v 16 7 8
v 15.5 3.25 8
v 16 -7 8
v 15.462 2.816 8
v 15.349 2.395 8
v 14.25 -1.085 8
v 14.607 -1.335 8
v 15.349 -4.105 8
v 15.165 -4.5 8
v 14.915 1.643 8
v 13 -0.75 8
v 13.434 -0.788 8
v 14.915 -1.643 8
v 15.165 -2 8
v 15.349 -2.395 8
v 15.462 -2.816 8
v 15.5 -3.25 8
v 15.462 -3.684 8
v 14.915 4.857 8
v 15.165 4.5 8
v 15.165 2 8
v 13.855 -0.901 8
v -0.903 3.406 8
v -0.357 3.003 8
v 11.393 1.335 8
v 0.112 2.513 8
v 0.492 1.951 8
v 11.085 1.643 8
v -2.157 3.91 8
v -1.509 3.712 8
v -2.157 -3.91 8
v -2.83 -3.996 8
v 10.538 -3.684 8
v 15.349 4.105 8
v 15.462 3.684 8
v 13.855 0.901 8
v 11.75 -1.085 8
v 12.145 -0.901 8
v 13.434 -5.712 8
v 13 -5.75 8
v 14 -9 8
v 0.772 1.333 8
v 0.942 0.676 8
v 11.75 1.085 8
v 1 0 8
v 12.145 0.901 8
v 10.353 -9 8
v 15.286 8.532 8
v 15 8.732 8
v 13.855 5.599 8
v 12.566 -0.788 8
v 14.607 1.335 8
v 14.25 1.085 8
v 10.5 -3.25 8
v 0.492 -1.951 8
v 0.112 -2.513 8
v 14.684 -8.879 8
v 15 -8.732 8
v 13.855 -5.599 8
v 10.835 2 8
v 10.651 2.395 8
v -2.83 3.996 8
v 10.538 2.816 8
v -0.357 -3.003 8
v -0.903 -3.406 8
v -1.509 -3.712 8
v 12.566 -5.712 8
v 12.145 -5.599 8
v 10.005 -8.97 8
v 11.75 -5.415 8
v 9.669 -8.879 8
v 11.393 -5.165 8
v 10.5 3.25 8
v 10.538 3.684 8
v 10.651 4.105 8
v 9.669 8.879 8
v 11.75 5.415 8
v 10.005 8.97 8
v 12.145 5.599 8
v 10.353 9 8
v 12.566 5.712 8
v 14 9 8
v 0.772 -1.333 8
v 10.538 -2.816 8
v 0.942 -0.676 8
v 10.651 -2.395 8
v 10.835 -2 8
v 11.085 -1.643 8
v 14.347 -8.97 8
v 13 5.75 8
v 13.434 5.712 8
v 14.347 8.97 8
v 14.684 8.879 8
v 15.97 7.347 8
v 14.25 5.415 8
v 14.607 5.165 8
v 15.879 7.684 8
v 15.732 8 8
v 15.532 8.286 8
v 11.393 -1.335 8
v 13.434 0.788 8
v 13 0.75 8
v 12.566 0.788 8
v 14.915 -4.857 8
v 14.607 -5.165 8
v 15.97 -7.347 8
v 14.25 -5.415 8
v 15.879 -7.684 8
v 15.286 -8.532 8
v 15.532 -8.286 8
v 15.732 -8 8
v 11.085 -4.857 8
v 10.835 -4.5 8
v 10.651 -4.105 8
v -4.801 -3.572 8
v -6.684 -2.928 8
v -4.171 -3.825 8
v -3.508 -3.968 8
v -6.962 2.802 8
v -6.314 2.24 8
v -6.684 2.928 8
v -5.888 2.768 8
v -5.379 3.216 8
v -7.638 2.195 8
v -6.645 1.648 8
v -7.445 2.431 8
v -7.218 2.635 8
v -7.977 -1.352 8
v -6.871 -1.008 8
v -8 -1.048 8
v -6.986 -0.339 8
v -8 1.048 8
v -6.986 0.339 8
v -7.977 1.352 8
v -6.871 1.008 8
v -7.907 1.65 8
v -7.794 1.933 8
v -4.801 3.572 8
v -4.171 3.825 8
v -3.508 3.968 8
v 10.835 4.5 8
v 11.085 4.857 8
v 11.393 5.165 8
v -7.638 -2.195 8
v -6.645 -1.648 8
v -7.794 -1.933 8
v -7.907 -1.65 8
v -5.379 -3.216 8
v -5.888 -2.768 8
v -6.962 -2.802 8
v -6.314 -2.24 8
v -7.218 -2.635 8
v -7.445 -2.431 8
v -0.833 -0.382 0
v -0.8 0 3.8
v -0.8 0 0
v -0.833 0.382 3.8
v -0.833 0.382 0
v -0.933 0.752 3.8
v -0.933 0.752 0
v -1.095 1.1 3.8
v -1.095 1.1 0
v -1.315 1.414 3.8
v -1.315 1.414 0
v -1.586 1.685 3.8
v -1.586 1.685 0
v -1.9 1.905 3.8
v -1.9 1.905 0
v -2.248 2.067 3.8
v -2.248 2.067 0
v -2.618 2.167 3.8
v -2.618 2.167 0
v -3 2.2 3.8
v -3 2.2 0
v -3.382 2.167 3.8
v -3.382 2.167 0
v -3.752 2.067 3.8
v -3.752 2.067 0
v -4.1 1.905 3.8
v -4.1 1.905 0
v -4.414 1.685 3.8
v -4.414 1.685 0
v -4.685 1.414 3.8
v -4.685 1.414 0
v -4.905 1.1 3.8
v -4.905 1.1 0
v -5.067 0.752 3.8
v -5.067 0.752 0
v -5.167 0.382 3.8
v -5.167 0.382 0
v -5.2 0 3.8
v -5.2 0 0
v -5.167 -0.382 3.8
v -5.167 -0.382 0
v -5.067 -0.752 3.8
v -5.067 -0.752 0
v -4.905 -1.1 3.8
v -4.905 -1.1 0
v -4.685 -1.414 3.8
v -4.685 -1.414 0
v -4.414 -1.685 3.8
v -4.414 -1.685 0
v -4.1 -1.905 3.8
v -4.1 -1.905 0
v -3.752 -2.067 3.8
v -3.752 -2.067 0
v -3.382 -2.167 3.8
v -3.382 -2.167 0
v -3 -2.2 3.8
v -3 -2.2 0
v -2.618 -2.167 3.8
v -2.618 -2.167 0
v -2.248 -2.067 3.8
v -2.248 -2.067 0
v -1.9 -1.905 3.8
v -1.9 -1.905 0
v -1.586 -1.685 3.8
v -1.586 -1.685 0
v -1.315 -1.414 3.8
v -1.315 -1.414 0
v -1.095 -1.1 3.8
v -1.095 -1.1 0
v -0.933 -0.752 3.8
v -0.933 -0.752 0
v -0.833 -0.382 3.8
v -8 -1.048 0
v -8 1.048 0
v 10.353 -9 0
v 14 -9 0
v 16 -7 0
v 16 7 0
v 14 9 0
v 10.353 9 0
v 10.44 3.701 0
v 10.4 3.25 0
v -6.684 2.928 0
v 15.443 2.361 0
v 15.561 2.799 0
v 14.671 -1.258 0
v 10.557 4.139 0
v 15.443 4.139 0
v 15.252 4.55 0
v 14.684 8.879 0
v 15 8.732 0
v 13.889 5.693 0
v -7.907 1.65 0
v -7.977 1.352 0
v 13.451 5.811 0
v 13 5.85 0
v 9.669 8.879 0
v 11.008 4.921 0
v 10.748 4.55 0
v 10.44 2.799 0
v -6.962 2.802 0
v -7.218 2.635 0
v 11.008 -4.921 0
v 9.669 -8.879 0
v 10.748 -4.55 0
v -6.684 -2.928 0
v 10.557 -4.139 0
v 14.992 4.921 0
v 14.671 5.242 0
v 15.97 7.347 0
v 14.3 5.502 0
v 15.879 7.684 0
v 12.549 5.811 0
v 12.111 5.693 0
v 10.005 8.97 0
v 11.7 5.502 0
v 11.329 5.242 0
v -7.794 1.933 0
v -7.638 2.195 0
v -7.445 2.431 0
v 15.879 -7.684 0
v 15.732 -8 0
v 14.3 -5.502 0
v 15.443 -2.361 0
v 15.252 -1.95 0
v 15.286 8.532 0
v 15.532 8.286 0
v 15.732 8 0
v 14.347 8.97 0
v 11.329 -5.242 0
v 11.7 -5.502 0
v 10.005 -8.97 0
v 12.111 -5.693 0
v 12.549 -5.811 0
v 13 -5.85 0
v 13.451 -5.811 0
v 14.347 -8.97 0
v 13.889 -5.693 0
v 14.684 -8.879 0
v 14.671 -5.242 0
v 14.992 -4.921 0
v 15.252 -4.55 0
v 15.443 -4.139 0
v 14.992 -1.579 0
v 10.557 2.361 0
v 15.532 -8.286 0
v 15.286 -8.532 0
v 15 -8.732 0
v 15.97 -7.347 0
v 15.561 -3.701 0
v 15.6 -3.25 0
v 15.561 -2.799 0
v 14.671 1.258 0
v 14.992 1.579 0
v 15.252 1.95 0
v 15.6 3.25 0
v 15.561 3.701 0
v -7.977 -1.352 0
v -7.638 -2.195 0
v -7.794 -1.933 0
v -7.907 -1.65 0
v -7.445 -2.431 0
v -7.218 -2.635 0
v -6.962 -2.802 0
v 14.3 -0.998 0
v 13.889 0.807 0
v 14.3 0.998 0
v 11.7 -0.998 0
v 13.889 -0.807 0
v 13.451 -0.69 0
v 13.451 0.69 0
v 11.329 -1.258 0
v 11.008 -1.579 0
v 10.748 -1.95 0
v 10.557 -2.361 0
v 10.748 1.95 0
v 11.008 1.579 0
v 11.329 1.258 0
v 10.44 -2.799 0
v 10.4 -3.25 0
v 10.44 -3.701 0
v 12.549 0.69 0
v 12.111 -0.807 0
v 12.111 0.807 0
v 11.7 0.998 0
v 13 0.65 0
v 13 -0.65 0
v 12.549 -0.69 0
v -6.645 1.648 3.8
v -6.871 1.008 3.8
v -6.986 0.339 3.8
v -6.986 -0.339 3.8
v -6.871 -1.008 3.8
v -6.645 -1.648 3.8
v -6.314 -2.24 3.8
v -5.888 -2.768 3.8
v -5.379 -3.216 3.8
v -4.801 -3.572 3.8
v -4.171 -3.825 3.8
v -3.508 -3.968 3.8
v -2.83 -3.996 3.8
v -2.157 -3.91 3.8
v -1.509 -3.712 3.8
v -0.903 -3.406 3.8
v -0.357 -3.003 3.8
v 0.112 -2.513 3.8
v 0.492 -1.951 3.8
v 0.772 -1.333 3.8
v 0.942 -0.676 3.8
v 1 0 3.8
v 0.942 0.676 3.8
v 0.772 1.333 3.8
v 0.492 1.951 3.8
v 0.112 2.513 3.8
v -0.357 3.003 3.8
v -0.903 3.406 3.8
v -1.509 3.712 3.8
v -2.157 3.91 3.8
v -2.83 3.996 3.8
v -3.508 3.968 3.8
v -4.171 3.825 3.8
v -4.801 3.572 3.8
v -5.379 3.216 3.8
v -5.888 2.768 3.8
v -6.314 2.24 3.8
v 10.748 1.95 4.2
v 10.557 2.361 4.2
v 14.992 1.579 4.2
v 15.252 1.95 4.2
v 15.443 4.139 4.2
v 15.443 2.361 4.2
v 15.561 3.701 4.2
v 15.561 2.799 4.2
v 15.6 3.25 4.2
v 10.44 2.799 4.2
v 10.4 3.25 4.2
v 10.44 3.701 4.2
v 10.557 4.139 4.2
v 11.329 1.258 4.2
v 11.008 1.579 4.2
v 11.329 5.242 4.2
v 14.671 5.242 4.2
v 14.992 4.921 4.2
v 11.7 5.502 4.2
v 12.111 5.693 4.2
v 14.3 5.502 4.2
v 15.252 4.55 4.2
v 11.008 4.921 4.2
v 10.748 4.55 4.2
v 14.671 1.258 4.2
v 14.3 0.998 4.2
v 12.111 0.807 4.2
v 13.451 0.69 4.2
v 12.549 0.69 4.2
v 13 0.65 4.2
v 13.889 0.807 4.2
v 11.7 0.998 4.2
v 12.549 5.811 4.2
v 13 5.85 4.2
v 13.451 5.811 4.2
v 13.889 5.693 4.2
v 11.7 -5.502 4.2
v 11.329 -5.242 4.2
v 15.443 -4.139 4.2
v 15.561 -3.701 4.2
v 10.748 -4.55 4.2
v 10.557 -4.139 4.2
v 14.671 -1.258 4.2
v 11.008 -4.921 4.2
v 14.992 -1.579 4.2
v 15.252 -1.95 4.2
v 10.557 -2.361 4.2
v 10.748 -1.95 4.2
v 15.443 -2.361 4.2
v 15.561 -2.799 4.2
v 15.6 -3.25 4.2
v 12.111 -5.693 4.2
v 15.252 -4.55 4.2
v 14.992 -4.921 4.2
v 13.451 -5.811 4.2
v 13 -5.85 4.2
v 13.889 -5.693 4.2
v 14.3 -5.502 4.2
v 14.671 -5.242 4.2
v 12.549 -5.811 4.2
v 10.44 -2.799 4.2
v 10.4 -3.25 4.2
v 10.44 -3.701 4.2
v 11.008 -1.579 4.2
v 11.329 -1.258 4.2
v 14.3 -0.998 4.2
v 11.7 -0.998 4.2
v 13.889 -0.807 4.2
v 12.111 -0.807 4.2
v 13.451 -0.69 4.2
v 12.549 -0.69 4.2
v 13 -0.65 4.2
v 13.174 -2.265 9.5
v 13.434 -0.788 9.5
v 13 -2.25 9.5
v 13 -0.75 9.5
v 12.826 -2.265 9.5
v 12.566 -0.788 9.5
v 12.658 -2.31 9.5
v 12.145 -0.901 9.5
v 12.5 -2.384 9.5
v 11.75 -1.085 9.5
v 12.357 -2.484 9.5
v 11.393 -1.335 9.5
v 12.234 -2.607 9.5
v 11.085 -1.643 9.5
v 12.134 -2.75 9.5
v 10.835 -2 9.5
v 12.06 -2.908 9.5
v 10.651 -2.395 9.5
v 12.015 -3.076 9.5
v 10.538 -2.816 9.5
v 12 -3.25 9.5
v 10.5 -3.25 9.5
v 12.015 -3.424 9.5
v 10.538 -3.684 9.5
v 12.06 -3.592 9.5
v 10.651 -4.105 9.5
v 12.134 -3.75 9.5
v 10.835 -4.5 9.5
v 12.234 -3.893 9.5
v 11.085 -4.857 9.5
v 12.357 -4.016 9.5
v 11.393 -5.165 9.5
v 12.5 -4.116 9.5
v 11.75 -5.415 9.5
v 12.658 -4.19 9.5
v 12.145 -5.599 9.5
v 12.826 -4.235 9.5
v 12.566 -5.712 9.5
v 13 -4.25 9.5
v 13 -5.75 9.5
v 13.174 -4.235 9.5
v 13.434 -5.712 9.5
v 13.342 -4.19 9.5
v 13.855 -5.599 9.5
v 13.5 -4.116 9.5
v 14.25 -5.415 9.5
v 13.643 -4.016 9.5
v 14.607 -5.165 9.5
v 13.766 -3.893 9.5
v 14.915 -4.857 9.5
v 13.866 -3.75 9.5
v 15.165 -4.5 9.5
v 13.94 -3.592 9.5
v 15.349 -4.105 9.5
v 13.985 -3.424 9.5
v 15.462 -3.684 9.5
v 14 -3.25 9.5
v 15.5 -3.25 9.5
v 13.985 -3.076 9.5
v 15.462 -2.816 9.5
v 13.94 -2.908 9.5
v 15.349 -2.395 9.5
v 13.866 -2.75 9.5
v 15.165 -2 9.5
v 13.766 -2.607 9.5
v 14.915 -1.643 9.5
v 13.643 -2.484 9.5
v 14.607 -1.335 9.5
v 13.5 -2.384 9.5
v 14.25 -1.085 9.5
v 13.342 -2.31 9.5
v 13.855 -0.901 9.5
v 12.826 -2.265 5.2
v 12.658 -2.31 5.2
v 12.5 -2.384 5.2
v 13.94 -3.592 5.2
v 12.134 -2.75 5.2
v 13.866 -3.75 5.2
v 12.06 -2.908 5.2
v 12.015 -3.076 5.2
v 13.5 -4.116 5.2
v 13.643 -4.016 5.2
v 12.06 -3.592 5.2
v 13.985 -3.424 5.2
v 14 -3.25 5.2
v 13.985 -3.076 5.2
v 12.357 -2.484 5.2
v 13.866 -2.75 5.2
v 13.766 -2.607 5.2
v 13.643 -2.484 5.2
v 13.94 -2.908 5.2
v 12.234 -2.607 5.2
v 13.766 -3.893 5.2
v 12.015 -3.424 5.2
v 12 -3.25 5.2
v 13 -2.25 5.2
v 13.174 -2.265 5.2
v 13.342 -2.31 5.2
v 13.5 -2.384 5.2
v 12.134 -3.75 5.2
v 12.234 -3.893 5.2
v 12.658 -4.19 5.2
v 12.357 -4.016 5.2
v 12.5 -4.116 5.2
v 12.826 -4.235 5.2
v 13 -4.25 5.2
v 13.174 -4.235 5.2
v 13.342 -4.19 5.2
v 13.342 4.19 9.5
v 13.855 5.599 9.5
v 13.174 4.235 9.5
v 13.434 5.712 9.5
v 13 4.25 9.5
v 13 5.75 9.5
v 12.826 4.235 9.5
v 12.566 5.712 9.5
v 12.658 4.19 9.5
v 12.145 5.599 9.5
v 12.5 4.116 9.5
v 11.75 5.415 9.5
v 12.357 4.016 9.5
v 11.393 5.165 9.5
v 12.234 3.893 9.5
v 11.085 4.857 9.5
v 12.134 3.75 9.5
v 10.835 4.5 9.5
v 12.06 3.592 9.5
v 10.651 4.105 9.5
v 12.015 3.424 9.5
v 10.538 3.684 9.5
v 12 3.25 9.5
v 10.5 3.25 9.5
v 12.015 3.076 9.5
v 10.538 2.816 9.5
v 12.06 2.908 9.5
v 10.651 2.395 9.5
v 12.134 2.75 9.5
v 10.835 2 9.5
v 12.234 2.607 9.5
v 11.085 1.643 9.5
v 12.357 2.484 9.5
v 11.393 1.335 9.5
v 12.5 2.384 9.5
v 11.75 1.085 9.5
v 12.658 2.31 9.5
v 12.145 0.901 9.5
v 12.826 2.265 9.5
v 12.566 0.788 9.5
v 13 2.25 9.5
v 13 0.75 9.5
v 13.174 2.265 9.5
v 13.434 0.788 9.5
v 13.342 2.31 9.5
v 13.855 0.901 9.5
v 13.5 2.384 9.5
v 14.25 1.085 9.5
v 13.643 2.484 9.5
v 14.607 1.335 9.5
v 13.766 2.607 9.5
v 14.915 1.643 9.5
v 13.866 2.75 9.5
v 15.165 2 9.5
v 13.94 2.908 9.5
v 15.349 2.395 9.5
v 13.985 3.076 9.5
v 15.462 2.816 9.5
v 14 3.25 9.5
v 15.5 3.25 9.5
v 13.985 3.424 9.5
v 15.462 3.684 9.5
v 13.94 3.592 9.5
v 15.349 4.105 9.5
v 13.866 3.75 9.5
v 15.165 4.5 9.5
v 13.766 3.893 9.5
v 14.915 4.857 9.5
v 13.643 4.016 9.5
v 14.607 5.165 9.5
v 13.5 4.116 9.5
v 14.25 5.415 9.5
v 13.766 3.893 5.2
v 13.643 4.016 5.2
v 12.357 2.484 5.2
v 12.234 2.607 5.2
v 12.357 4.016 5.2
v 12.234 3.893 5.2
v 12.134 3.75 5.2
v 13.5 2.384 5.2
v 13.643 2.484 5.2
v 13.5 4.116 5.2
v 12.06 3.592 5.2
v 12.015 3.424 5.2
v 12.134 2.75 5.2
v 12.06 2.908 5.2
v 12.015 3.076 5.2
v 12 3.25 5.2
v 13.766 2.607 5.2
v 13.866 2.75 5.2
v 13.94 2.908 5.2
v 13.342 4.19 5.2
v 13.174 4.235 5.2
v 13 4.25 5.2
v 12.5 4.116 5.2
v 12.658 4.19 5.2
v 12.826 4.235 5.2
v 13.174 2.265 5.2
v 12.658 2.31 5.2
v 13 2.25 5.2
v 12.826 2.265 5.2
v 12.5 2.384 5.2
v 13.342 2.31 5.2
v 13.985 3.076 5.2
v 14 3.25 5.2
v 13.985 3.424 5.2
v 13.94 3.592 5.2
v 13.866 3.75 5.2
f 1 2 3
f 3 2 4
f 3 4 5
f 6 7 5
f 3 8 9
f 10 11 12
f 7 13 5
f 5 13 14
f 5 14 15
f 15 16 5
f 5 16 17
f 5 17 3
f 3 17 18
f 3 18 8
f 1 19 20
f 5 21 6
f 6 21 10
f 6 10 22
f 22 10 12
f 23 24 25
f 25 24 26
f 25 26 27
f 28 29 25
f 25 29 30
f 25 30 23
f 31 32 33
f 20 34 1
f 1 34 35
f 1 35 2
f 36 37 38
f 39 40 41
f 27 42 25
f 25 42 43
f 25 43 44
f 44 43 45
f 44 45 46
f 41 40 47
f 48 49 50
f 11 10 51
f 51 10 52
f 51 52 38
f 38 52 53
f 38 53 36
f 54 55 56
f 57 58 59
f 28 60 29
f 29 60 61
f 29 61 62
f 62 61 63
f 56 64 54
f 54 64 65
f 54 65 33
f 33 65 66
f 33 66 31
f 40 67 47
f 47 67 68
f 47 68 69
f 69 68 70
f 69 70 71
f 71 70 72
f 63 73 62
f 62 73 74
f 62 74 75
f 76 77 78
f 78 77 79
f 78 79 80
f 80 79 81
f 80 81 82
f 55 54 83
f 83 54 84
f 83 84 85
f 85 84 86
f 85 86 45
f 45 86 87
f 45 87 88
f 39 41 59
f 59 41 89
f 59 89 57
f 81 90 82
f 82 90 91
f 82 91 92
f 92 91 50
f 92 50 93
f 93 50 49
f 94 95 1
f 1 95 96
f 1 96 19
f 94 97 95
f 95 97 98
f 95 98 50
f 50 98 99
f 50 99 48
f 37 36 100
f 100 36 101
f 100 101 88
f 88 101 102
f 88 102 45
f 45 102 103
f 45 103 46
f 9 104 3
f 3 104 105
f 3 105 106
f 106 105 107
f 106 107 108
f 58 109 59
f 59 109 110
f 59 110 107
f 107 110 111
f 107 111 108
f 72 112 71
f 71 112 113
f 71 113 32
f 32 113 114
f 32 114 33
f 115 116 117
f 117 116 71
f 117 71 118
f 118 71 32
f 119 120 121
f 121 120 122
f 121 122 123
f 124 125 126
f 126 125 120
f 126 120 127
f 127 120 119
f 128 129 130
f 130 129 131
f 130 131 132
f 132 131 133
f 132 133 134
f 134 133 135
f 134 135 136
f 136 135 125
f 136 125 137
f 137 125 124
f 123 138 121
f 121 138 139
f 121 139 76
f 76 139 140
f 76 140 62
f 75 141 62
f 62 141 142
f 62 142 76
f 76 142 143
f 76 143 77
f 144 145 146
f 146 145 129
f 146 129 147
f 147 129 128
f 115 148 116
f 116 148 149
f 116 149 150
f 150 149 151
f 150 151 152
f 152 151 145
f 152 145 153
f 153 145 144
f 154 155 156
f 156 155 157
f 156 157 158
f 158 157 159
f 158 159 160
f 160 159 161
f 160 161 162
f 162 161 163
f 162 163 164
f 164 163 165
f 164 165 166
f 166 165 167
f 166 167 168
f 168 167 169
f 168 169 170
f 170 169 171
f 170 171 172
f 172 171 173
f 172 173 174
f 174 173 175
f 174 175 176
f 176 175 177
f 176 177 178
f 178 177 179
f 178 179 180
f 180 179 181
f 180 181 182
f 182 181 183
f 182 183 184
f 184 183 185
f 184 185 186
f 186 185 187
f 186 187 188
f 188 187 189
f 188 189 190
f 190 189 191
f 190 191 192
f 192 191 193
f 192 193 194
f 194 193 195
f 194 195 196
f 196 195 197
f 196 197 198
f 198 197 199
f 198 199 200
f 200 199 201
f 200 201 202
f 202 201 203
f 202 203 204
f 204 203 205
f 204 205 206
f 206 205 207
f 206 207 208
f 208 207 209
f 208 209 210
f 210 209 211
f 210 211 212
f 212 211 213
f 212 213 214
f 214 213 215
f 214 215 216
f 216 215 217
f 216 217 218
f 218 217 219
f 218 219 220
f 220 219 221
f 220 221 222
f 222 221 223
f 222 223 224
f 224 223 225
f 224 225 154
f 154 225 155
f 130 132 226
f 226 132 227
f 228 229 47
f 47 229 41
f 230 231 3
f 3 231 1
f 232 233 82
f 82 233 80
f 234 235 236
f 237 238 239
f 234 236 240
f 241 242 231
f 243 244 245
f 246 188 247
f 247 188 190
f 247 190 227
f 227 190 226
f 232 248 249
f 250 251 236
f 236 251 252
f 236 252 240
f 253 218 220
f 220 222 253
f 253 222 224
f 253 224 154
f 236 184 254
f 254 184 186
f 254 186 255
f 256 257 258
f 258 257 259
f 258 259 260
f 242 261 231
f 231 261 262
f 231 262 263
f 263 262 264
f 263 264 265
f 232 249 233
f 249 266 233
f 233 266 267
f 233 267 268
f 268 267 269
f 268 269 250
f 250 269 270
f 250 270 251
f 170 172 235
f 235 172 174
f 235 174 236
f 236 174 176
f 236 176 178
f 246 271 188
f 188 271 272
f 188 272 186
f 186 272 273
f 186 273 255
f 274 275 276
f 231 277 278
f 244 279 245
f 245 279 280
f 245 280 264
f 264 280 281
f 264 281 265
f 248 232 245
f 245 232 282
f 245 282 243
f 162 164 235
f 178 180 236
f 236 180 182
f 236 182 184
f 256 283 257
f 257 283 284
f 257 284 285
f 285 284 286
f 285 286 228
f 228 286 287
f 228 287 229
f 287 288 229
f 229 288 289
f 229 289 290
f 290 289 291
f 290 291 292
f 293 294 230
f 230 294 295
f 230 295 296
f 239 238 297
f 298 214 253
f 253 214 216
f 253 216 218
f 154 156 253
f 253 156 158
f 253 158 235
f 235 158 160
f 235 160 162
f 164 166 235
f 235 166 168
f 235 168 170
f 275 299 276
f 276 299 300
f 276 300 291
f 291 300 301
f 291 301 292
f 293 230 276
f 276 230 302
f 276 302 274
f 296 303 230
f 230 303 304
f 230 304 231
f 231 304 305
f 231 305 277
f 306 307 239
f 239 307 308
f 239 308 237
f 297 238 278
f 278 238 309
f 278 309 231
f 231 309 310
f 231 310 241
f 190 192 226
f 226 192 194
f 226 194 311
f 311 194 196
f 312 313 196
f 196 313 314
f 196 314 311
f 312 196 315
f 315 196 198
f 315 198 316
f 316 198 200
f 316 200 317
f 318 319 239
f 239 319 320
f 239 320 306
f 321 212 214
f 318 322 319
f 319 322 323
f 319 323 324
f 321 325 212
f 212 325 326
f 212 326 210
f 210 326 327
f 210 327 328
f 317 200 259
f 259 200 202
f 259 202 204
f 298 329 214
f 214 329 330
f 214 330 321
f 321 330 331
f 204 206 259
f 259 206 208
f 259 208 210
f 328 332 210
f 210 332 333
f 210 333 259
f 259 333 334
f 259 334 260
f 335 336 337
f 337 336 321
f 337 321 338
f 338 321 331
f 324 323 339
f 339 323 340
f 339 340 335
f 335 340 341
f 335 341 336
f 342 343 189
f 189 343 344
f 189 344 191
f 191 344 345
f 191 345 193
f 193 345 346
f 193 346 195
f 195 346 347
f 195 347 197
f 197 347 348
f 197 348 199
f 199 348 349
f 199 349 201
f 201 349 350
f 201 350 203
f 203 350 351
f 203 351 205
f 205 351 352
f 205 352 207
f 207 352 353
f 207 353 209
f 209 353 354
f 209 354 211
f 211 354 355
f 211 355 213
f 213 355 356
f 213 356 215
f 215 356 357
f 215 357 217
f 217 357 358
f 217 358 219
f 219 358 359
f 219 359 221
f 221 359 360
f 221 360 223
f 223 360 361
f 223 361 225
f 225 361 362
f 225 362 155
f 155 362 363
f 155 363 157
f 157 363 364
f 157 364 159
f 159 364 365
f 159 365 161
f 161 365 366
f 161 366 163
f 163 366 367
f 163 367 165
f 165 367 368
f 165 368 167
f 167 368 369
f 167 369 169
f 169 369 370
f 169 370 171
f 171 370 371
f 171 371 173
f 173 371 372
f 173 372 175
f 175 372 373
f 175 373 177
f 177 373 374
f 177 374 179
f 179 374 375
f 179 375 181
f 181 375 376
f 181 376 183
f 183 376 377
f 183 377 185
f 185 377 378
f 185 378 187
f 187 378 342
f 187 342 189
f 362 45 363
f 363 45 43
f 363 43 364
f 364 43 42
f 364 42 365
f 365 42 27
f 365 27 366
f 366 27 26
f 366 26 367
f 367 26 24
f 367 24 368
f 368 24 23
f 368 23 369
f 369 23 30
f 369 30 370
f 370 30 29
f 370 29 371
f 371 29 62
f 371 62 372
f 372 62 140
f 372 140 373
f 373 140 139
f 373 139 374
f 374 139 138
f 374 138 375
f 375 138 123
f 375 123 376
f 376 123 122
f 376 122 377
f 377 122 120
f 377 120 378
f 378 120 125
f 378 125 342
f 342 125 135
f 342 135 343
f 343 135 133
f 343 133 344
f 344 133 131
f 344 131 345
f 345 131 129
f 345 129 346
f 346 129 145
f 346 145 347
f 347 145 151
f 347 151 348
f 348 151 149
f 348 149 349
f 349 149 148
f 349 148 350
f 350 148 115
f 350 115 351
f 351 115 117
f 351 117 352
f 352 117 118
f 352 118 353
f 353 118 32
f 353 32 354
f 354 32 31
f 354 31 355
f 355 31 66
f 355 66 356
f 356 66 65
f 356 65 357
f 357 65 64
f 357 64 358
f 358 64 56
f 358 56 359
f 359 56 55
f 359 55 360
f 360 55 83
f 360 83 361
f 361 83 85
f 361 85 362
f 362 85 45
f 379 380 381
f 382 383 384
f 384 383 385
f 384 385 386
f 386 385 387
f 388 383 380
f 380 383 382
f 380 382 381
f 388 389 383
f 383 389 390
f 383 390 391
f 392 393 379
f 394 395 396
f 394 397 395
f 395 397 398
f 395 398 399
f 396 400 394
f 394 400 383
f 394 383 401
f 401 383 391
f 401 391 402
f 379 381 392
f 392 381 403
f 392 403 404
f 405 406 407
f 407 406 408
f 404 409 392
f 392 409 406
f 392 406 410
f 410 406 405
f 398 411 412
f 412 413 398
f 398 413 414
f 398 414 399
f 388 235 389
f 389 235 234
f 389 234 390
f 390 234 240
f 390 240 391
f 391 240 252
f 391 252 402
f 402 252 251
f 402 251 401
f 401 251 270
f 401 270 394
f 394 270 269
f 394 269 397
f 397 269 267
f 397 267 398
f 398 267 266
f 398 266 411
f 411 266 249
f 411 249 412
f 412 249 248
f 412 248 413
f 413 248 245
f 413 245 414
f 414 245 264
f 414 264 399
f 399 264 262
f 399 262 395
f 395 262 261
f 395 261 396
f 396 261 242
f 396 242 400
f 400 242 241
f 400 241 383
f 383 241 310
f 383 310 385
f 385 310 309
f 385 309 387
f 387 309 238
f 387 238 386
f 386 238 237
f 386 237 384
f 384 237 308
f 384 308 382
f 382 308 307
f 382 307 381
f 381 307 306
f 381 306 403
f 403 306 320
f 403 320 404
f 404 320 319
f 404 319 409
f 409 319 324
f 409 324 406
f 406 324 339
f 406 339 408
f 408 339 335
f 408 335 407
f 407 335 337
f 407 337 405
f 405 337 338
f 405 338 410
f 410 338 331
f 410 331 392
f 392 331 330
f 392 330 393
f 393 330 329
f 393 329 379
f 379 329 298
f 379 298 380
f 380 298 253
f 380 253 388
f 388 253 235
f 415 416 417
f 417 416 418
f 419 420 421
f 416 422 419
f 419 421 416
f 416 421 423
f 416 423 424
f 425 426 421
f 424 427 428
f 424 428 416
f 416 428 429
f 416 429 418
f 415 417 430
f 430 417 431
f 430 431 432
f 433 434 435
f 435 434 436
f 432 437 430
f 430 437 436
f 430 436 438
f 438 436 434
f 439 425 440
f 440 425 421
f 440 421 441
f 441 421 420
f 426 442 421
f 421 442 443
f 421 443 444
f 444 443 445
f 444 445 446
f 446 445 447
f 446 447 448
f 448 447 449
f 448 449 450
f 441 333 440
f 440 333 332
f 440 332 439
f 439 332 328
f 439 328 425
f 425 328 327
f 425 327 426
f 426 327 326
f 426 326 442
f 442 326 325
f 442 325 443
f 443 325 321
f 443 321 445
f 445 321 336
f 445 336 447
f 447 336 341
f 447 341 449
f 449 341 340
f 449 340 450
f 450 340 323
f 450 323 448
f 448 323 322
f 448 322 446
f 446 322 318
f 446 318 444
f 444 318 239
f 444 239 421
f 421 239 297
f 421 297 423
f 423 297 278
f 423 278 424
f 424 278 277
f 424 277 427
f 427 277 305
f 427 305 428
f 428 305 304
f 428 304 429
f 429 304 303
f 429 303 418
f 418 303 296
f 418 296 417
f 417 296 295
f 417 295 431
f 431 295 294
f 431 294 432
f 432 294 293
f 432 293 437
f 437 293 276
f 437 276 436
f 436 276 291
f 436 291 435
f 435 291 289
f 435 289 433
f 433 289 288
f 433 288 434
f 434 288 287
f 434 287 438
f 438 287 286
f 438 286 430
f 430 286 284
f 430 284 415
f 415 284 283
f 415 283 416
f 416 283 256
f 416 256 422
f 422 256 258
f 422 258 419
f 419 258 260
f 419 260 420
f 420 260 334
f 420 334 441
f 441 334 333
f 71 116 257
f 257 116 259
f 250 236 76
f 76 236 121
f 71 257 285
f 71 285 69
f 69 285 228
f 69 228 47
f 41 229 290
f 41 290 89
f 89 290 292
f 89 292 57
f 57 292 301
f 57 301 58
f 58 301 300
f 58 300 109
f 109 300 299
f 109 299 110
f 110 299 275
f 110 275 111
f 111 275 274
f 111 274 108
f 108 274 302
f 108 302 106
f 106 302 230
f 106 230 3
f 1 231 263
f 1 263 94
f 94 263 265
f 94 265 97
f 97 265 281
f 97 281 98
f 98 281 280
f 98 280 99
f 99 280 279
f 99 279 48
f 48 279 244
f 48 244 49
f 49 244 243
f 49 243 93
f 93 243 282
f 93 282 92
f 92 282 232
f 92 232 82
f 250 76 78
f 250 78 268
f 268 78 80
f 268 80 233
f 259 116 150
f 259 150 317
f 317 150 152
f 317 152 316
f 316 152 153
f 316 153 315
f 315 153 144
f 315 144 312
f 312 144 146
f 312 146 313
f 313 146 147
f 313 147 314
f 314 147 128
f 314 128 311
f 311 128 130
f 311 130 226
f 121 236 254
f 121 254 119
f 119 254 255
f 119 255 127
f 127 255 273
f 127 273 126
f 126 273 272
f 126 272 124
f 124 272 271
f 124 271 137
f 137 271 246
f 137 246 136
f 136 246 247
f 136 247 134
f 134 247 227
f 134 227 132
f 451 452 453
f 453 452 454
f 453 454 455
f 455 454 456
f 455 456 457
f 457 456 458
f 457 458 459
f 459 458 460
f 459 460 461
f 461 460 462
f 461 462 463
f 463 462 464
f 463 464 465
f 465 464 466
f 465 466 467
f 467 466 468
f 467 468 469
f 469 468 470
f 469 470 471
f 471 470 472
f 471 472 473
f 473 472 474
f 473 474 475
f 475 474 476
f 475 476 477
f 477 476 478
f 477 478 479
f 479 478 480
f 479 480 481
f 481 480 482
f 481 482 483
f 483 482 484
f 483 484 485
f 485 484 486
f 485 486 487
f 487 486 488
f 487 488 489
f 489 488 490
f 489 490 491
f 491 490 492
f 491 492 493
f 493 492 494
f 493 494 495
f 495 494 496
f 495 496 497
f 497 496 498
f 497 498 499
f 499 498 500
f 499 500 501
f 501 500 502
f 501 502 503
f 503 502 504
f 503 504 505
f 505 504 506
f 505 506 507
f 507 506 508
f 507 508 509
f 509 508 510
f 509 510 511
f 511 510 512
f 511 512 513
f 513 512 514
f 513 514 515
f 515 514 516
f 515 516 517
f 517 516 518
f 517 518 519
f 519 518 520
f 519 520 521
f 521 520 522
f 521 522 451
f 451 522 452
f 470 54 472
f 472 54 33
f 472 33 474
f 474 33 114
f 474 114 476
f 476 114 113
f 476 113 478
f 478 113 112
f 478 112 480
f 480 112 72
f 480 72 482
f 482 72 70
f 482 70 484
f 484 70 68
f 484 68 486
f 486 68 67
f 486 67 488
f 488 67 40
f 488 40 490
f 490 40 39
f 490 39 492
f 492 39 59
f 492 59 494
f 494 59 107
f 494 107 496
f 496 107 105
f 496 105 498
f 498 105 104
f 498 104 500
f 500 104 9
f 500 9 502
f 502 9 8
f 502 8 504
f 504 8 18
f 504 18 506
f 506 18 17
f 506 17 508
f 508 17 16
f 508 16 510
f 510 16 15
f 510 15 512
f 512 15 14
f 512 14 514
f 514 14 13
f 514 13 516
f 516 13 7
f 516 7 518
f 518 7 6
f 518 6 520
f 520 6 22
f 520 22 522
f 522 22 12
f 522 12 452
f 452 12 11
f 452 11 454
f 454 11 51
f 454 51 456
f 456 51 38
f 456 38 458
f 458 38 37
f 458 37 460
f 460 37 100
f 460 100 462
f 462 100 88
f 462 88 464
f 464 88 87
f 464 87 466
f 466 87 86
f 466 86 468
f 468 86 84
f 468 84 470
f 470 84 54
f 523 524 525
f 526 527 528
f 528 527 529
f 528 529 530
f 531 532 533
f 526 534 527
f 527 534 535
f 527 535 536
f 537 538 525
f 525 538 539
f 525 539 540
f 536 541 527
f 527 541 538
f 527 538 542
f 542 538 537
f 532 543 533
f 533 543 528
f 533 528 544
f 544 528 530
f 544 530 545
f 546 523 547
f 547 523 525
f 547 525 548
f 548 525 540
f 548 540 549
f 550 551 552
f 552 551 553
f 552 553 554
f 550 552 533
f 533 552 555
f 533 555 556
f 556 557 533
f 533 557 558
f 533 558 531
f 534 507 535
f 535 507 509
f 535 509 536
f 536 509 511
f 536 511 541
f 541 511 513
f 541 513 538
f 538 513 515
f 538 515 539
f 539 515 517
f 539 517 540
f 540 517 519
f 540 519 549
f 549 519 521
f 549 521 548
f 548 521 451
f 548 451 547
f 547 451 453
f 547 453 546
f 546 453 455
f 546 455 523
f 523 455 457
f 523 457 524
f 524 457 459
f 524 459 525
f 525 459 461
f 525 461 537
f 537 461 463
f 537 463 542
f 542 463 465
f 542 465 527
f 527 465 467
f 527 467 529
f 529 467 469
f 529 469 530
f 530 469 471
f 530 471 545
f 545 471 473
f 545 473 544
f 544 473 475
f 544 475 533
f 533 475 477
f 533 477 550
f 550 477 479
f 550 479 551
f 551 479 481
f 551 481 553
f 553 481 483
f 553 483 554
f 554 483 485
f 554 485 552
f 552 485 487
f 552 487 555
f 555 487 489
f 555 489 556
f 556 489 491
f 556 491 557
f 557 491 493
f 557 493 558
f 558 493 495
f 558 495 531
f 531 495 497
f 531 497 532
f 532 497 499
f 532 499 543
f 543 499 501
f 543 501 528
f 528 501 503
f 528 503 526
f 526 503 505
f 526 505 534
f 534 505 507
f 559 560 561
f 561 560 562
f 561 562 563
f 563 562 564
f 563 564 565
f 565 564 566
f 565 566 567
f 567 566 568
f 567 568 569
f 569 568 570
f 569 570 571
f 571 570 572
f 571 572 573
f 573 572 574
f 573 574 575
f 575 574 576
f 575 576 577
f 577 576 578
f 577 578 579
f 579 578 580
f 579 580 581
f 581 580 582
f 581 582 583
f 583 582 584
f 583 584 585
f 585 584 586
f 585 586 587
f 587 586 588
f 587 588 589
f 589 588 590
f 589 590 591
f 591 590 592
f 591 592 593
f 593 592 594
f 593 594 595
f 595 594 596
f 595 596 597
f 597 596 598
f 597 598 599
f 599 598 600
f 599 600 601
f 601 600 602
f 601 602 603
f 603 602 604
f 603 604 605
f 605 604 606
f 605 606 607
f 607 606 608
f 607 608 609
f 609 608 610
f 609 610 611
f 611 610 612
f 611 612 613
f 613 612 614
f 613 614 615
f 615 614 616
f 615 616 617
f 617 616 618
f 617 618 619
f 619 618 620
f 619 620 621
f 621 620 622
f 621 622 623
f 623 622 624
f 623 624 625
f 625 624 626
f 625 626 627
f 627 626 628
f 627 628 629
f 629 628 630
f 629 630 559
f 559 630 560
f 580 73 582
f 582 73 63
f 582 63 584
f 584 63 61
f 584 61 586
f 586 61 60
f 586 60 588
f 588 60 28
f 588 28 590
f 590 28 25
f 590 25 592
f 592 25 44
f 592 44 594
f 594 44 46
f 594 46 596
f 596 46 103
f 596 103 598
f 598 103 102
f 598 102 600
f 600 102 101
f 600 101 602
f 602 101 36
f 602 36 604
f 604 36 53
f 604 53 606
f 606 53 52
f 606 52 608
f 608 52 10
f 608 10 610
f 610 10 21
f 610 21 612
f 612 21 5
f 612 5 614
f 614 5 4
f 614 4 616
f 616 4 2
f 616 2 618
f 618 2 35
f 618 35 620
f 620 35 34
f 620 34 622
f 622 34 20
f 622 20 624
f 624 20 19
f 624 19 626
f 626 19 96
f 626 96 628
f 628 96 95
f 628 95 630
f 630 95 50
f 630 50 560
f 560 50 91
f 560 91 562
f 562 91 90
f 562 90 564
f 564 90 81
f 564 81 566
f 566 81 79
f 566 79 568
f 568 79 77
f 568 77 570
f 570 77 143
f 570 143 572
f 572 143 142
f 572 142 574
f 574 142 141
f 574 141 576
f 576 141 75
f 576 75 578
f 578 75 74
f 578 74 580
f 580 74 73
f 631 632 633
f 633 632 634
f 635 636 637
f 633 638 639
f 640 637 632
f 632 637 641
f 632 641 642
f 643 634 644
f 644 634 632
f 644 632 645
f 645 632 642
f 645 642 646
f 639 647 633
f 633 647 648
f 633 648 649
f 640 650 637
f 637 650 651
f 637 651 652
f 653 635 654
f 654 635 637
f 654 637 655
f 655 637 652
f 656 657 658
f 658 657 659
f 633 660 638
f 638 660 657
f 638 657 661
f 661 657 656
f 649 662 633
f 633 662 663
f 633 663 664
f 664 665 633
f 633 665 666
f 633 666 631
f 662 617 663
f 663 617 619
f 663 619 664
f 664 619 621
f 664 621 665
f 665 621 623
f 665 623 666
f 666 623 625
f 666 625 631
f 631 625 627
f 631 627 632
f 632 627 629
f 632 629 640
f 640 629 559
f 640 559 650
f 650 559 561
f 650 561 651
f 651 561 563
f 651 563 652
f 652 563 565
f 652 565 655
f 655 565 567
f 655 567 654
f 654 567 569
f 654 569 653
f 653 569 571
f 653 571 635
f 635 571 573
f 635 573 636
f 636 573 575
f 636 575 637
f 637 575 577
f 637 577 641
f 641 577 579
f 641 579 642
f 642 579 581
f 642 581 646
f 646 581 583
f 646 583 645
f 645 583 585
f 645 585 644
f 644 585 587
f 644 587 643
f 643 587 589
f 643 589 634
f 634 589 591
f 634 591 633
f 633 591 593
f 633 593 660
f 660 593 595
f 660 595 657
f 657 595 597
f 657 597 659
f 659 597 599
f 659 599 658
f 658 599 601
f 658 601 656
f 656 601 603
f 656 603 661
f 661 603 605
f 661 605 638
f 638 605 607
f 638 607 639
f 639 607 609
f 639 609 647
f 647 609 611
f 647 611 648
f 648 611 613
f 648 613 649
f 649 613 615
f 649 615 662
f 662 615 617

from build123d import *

# Parameters (mm, degrees)
ESQUISSE1_W             = 24
ESQUISSE1_H             = 18
BOSS_EXTRU_1_DEPTH      = 8
ESQUISSE2_R             = 2.2
ENL_V_MAT_EXTRU_1_DEPTH = 9
ESQUISSE3_R             = 4
ENL_V_MAT_EXTRU_2_DEPTH = 4.2
ESQUISSE4_R             = 1
ENL_V_MAT_EXTRU_3_DEPTH = 9
ESQUISSE5_R             = 2.6
ENL_V_MAT_EXTRU_6_DEPTH = 4.2
ESQUISSE6_R             = 1.7
BOSS_EXTRU_2_DEPTH      = 1
CHANFREIN1_SIZE         = 18
CHANFREIN1_SIZE2        = 6.551464217
CHANFREIN1_PART_2_SIZE  = 18
CHANFREIN1_PART_2_SIZE2 = 6.551464217
CONG_1_R                = 2
ESQUISSE7_R             = 2.5
ESQUISSE7_R_2           = 1
BOSS_EXTRU_3_DEPTH      = 1.5


with BuildPart() as part:
    # Esquisse1 → Boss.-Extru.1 (new body)
    with BuildSketch(Plane.XY):
        with Locations((4, 0)):
            Rectangle(ESQUISSE1_W, ESQUISSE1_H)
    extrude(amount=BOSS_EXTRU_1_DEPTH)

    # Esquisse2 → Enlèv. mat.-Extru.1 (cut, through all)
    with BuildSketch(Plane.XY.offset(8)):
        with Locations((-3, 0)):
            Circle(ESQUISSE2_R)
    extrude(amount=-ENL_V_MAT_EXTRU_1_DEPTH, mode=Mode.SUBTRACT)

    # Esquisse3 → Enlèv. mat.-Extru.2 (cut)
    with BuildSketch(Plane.XY.offset(8)):
        with Locations((-3, 0)):
            Circle(ESQUISSE3_R)
    extrude(amount=-ENL_V_MAT_EXTRU_2_DEPTH, mode=Mode.SUBTRACT)

    # Esquisse4 → Enlèv. mat.-Extru.3 (cut, through all)
    with BuildSketch(Plane.XY.offset(8)):
        with Locations((13, 3.25)):
            Circle(ESQUISSE4_R)
        with Locations((13, -3.25)):
            Circle(ESQUISSE4_R)
    extrude(amount=-ENL_V_MAT_EXTRU_3_DEPTH, mode=Mode.SUBTRACT)

    # Esquisse5 → Enlèv. mat.-Extru.6 (cut)
    with BuildSketch(Plane(origin=(0, 0, 0), x_dir=(-1, 0, 0), z_dir=(0, 0, -1))):
        with Locations((-13, 3.25)):
            Circle(ESQUISSE5_R)
        with Locations((-13, -3.25)):
            Circle(ESQUISSE5_R)
    extrude(amount=-ENL_V_MAT_EXTRU_6_DEPTH, mode=Mode.SUBTRACT)

    # Esquisse6 → Boss.-Extru.2 (add)
    with BuildSketch(Plane(origin=(0, 0, 4.2), x_dir=(-1, 0, 0), z_dir=(0, 0, -1))):
        with Locations((-13, 3.25)):
            Circle(ESQUISSE6_R)
        with Locations((-13, -3.25)):
            Circle(ESQUISSE6_R)
    extrude(amount=-BOSS_EXTRU_2_DEPTH)

    # Chanfrein1
    chanfrein1_edges = [part.edges().sort_by_distance(p)[0] for p in [
        (-8, 9, 4),
    ]]
    chanfrein1_side = [part.faces().sort_by_distance(p)[0] for p in [
        (4, 9, 4),
    ]]
    chamfer(chanfrein1_edges, length=CHANFREIN1_SIZE, length2=CHANFREIN1_SIZE2, reference=chanfrein1_side[0])

    # Chanfrein1 part 2
    chanfrein1_part_2_edges = [part.edges().sort_by_distance(p)[0] for p in [
        (-8, -9, 4),
    ]]
    chanfrein1_part_2_side = [part.faces().sort_by_distance(p)[0] for p in [
        (4, -9, 4),
    ]]
    chamfer(chanfrein1_part_2_edges, length=CHANFREIN1_PART_2_SIZE, length2=CHANFREIN1_PART_2_SIZE2, reference=chanfrein1_part_2_side[0])

    # Congé1
    cong_1_edges = [part.edges().sort_by_distance(p)[0] for p in [
        (10, -9, 4),
        (-8, 2.448535783, 4),
        (-8, -2.448535783, 4),
        (10, 9, 4),
        (16, 9, 4),
        (16, -9, 4),
    ]]
    fillet(cong_1_edges, radius=CONG_1_R)

    # Esquisse7 → Boss.-Extru.3 (add)
    with BuildSketch(Plane.XY.offset(8)):
        with Locations((13, -3.25)):
            Circle(ESQUISSE7_R)
        with Locations((13, -3.25)):
            Circle(ESQUISSE7_R_2, mode=Mode.SUBTRACT)
        with Locations((13, 3.25)):
            Circle(ESQUISSE7_R)
        with Locations((13, 3.25)):
            Circle(ESQUISSE7_R_2, mode=Mode.SUBTRACT)
    extrude(amount=BOSS_EXTRU_3_DEPTH)


solid = part.part
